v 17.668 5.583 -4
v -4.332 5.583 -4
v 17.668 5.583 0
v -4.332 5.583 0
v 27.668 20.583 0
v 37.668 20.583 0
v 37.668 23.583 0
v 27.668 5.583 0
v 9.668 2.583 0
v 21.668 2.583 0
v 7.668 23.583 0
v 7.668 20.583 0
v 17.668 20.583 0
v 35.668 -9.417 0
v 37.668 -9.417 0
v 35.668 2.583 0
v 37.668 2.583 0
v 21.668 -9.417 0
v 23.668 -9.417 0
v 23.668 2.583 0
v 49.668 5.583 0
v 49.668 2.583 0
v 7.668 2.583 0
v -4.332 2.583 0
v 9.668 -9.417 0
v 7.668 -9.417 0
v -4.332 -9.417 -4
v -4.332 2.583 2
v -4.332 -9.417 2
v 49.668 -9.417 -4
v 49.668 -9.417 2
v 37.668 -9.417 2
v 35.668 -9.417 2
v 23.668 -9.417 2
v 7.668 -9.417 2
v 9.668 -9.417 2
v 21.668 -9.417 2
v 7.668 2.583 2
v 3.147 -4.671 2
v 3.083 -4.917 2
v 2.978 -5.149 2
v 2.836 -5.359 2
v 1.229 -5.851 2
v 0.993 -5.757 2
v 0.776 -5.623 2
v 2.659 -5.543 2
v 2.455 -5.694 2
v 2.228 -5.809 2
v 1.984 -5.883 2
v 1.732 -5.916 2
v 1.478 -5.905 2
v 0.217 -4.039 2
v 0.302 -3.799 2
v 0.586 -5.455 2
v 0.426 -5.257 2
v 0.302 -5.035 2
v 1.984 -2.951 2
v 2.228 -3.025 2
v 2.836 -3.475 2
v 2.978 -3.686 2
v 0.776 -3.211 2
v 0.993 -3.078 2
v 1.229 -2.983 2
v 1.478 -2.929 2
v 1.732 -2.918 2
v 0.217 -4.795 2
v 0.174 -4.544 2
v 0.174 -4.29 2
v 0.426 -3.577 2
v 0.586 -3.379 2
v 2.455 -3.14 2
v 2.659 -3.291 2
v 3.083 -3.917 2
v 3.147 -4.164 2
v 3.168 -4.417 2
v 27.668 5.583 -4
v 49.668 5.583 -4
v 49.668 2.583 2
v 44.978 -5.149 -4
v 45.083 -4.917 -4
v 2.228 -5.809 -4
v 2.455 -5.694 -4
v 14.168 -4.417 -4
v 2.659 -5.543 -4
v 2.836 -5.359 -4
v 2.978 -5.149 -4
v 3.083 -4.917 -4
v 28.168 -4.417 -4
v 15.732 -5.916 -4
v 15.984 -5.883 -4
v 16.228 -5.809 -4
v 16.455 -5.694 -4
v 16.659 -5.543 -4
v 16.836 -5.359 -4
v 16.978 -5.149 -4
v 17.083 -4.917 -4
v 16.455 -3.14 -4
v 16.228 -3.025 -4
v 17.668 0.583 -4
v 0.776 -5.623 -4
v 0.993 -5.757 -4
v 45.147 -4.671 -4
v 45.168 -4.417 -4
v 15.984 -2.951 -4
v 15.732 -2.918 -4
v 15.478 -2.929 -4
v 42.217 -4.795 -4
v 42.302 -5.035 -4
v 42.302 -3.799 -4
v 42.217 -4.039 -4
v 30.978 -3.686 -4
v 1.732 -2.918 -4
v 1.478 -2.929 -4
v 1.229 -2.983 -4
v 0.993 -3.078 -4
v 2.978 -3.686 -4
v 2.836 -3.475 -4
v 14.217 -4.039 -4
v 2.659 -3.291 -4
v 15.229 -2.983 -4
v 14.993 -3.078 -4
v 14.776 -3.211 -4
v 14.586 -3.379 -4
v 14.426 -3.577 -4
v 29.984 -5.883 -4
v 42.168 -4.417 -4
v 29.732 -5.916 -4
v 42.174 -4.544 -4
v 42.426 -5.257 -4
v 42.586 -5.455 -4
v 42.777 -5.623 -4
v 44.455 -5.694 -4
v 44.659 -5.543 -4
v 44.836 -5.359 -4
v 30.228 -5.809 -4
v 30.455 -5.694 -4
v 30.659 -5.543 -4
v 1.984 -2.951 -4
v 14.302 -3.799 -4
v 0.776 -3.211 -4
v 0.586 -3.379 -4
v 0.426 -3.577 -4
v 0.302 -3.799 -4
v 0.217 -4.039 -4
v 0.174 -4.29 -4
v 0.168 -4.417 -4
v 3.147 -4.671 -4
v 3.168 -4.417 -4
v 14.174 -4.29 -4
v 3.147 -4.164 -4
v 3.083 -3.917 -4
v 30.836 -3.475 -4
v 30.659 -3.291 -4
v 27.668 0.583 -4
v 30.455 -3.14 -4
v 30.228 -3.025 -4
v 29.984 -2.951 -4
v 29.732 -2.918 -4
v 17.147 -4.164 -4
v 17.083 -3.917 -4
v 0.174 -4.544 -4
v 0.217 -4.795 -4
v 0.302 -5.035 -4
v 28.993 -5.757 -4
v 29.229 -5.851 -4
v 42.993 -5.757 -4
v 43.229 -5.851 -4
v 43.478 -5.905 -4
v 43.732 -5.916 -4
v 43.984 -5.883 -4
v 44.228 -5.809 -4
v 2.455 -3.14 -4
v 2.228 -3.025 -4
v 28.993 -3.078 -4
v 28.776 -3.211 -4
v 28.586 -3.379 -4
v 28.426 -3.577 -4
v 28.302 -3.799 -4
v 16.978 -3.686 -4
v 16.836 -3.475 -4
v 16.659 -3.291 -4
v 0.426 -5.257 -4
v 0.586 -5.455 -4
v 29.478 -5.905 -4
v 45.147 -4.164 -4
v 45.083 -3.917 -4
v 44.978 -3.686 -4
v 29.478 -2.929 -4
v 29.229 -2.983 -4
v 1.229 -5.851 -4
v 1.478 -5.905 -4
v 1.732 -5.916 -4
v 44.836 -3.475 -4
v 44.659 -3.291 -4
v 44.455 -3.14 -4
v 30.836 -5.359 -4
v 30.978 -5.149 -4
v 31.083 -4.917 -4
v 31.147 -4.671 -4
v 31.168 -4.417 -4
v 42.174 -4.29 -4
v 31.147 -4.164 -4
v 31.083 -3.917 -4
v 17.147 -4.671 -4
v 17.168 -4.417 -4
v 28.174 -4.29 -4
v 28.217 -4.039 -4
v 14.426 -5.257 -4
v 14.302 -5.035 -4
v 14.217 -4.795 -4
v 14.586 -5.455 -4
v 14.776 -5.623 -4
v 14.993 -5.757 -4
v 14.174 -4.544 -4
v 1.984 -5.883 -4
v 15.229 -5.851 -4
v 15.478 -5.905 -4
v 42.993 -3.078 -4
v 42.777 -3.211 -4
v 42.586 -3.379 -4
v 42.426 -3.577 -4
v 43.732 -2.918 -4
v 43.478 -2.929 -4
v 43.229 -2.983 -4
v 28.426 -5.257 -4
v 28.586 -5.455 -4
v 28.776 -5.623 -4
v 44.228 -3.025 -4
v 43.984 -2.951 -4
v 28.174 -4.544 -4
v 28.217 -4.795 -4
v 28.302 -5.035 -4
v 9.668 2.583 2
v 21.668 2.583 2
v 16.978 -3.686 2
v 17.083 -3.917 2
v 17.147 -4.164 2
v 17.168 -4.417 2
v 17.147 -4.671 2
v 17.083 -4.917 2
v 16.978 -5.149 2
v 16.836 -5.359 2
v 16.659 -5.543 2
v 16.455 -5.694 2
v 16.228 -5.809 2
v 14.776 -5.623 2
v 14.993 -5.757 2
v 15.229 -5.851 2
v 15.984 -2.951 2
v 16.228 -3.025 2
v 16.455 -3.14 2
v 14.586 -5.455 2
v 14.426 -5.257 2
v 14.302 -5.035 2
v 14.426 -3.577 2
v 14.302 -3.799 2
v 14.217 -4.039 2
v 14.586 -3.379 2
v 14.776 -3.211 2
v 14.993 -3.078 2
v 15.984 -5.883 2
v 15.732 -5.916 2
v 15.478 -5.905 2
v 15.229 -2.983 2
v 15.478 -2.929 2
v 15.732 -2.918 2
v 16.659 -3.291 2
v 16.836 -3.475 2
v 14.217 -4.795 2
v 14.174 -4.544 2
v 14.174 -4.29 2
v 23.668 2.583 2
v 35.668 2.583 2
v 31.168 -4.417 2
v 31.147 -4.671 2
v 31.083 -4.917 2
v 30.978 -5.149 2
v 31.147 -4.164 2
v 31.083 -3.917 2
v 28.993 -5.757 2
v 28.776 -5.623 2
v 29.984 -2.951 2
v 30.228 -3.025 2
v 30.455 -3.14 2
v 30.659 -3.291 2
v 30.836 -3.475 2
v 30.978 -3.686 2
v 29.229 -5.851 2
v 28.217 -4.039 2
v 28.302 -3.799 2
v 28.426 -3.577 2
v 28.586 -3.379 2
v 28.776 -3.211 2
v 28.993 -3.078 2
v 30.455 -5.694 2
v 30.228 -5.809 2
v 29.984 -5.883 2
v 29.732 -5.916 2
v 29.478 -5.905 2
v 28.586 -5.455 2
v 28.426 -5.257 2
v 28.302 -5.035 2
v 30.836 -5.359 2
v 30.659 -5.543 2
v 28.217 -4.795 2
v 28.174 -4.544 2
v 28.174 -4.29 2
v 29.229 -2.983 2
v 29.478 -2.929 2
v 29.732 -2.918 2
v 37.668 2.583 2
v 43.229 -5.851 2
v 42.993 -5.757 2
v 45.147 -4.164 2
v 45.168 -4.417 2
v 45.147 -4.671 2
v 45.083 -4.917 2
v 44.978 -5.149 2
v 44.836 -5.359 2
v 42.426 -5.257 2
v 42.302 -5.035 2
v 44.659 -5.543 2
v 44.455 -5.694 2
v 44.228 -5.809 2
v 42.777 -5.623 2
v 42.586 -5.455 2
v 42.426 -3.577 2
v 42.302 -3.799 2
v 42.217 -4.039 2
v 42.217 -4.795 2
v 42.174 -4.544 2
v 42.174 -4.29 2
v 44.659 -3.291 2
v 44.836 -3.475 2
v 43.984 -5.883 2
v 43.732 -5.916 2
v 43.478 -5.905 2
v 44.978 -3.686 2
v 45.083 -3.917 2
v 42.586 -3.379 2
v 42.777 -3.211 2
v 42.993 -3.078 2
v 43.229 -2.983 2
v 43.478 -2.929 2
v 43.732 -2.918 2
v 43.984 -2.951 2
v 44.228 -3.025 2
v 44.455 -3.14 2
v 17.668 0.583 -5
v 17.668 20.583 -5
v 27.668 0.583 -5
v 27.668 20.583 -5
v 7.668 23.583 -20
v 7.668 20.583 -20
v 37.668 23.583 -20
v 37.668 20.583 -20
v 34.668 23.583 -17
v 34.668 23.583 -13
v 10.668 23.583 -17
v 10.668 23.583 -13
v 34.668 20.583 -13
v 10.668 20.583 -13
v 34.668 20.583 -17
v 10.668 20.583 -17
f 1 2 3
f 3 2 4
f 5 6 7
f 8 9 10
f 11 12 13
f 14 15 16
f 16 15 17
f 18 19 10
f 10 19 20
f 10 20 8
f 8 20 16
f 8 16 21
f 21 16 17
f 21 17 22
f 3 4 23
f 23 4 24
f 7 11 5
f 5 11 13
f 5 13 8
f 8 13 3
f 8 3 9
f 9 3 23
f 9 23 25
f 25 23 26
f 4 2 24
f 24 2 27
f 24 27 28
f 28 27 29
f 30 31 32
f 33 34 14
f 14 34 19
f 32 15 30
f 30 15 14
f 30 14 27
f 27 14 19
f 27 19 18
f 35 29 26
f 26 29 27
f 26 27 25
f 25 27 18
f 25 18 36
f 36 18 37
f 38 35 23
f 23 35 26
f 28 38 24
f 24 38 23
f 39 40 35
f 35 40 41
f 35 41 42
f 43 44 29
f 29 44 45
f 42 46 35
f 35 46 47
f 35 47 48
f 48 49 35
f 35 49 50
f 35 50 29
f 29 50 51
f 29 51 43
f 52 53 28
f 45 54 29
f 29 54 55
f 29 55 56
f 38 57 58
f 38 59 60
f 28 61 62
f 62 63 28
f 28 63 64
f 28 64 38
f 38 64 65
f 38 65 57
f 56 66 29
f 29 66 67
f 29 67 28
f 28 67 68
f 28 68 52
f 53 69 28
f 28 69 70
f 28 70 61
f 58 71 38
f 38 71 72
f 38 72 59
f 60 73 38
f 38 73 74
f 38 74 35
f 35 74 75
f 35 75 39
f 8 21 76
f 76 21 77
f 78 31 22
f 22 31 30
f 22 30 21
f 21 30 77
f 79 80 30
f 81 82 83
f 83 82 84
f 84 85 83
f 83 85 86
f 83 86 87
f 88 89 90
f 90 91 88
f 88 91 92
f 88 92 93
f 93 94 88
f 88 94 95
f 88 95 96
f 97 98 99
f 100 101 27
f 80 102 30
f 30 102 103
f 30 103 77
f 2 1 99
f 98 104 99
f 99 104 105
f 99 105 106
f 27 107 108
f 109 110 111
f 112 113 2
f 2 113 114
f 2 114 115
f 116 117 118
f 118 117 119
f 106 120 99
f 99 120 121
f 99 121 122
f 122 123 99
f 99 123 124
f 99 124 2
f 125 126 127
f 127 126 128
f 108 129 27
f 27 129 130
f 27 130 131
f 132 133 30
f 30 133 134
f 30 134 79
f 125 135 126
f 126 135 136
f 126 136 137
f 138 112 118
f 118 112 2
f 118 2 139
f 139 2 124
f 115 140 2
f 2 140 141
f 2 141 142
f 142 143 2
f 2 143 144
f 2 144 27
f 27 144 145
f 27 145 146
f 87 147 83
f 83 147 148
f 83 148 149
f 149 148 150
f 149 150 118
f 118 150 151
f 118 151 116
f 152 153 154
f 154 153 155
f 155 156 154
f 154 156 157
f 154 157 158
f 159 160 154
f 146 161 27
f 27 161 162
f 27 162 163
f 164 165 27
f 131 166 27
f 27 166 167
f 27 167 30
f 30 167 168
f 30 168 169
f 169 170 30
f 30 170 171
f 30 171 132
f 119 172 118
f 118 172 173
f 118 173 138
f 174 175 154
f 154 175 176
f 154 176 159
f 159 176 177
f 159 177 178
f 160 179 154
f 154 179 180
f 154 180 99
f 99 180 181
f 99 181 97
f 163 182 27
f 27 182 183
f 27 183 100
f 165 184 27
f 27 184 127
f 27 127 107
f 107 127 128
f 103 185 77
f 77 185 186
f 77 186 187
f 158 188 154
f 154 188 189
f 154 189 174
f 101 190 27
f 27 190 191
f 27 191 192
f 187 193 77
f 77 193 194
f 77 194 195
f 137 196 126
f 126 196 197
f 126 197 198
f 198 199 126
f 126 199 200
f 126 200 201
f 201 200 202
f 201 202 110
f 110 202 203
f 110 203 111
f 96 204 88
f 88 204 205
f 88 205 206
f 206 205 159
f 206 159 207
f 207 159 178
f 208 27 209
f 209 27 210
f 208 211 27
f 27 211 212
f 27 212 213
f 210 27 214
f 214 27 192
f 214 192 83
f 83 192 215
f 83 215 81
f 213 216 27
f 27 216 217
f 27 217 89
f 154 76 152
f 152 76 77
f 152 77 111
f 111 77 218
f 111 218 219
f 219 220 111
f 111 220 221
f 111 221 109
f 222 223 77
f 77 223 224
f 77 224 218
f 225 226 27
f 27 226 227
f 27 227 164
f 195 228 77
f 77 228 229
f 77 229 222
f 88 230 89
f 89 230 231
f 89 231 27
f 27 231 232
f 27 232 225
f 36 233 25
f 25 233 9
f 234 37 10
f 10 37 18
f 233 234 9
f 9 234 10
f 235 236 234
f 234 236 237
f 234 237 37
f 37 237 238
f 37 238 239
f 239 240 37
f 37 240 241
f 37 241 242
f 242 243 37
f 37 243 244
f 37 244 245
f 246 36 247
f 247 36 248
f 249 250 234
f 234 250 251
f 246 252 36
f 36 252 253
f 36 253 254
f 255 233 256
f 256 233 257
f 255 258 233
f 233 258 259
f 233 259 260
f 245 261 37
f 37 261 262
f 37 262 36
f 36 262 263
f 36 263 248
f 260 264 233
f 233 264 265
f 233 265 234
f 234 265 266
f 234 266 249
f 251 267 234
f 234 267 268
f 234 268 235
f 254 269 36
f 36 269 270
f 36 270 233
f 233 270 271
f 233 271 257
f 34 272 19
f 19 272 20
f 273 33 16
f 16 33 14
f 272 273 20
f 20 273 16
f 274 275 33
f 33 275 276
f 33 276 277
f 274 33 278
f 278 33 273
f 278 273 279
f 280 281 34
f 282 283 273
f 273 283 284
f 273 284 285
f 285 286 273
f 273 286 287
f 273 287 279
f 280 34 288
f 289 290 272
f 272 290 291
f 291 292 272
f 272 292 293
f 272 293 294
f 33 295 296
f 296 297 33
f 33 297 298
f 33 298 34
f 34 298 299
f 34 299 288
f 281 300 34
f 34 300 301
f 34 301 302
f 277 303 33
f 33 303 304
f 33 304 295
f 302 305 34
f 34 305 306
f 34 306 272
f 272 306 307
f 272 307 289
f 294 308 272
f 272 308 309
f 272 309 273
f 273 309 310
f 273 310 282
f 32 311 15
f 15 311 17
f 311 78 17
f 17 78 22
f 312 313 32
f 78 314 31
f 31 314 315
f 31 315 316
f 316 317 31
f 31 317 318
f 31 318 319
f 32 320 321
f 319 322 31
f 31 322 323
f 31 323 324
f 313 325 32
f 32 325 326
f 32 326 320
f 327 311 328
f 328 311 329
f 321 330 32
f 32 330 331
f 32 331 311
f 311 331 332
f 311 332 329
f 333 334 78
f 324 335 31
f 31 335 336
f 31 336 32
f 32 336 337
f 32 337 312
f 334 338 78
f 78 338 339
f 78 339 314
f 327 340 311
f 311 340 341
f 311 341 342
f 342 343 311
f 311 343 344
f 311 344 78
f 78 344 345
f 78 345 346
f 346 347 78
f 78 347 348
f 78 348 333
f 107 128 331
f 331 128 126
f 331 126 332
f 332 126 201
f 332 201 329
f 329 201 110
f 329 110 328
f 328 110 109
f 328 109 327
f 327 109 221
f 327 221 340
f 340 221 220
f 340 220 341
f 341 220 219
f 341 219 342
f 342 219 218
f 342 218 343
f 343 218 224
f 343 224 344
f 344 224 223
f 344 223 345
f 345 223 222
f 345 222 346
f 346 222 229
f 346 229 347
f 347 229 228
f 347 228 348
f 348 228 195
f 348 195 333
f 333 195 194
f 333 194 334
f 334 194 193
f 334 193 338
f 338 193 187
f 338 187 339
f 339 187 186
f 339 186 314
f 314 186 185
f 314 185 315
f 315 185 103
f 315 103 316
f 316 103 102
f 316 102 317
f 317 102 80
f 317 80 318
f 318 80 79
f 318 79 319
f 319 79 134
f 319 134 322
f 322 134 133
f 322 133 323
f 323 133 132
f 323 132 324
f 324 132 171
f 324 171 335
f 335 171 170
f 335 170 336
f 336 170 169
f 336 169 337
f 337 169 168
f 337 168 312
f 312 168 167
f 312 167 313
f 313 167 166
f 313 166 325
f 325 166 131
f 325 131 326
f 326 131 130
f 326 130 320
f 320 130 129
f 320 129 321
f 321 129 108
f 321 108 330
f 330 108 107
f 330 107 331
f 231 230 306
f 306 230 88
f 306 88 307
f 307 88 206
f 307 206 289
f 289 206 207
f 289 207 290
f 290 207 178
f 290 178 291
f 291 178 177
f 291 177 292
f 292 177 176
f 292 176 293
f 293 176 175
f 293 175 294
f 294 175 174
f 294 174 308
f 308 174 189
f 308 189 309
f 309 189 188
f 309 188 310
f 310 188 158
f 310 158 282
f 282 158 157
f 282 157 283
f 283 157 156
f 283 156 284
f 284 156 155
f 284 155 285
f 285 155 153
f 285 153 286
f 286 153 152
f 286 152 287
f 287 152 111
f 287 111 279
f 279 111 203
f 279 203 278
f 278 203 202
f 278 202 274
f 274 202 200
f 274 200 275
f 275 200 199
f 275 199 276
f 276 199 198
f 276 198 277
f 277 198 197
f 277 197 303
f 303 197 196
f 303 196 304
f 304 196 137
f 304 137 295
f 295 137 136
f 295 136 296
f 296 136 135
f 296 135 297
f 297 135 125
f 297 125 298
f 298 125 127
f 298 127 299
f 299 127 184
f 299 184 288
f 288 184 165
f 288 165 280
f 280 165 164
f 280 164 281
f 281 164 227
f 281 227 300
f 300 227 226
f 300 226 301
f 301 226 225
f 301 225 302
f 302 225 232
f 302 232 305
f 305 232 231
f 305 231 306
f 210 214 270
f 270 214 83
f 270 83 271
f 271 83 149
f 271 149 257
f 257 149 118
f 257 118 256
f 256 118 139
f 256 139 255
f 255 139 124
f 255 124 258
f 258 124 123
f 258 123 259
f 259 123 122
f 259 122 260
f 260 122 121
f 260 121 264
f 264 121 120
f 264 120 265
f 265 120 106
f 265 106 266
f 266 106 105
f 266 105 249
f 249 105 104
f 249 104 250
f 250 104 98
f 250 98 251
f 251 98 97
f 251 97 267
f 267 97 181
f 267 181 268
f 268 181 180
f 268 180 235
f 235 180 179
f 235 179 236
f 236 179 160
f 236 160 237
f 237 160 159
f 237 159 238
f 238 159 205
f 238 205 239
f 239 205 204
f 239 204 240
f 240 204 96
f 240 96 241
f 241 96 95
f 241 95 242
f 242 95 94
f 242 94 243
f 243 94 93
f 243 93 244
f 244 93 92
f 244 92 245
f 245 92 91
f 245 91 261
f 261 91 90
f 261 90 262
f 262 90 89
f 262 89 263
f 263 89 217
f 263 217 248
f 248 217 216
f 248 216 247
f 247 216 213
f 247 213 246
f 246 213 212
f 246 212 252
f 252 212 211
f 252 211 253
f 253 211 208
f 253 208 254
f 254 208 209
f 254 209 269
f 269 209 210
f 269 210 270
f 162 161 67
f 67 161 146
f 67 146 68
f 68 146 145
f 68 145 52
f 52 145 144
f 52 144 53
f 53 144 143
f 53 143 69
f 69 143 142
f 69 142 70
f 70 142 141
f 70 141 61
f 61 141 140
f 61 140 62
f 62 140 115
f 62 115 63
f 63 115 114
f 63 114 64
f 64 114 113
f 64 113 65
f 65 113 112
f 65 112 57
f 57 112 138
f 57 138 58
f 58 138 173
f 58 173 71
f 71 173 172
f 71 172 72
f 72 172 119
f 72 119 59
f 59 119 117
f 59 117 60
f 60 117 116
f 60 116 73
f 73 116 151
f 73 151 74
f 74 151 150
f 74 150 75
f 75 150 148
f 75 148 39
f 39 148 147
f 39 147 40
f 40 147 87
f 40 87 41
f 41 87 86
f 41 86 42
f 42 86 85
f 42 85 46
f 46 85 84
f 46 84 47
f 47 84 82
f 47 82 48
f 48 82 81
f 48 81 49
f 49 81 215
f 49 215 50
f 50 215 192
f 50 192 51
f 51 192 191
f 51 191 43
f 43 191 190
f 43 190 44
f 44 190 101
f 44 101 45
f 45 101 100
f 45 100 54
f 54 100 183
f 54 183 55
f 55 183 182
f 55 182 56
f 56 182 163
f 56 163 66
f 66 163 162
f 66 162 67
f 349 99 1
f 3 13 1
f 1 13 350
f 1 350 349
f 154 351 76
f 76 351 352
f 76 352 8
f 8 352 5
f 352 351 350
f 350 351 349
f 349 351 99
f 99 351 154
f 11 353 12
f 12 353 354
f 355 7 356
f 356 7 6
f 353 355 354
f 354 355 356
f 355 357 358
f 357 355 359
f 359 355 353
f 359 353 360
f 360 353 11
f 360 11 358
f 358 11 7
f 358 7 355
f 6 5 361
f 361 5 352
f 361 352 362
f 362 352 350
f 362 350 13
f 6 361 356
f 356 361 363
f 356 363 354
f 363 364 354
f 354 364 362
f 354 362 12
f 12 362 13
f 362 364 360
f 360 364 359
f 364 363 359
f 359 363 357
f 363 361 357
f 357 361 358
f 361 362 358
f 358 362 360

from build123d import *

# Parameters (mm, degrees)
SKETCH1_W                = 12
SKETCH1_H                = 12
BOSS_EXTRUDE1_DEPTH      = 2
SKETCH2_W                = 54
SKETCH2_H                = 15
BOSS_EXTRUDE2_DEPTH      = 4
SKETCH3_W                = 12
SKETCH3_H                = 12
BOSS_EXTRUDE3_DEPTH      = 2
SKETCH4_R                = 1.5
CUT_EXTRUDE1_DEPTH       = 9
SKETCH5_W                = 10
SKETCH5_H                = 5
BOSS_EXTRUDE4_DEPTH      = 15
BOSS_EXTRUDE4_DEPTH_BACK = 5
SKETCH6_W                = 30
SKETCH6_H                = 20
BOSS_EXTRUDE5_DEPTH      = 3
SKETCH7_W                = 24
SKETCH7_H                = 4
CUT_EXTRUDE2_DEPTH       = 3


with BuildPart() as part:
    # Sketch1 → Boss-Extrude1 (new body)
    with BuildSketch(Plane.XY):
        with Locations((1.668449198, -3.417112299)):
            Rectangle(SKETCH1_W, SKETCH1_H)
    extrude(amount=BOSS_EXTRUDE1_DEPTH)

    # Sketch2 → Boss-Extrude2 (add)
    with BuildSketch(Plane(origin=(0, 0, 0), x_dir=(-1, 0, 0), z_dir=(0, 0, -1))):
        with Locations((-22.668449198, -1.917112299)):
            Rectangle(SKETCH2_W, SKETCH2_H)
    extrude(amount=BOSS_EXTRUDE2_DEPTH)

    # Sketch3 → Boss-Extrude3 (add)
    with BuildSketch(Plane.XY):
        with Locations((15.668449198, -3.417112299)):
            Rectangle(SKETCH3_W, SKETCH3_H)
        with Locations((29.668449198, -3.417112299)):
            Rectangle(SKETCH3_W, SKETCH3_H)
        with Locations((43.668449198, -3.417112299)):
            Rectangle(SKETCH3_W, SKETCH3_H)
    extrude(amount=BOSS_EXTRUDE3_DEPTH)

    # Sketch4 → Cut-Extrude1 (cut)
    with BuildSketch(Plane.XY.offset(2)):
        with Locations((1.668449198, -4.417112299)):
            Circle(SKETCH4_R)
        with Locations((15.668449198, -4.417112299)):
            Circle(SKETCH4_R)
        with Locations((29.668449198, -4.417112299)):
            Circle(SKETCH4_R)
        with Locations((43.668449198, -4.417112299)):
            Circle(SKETCH4_R)
    extrude(amount=-CUT_EXTRUDE1_DEPTH, mode=Mode.SUBTRACT)

    # Sketch5 → Boss-Extrude4 (add, two sides)
    with BuildSketch(Plane(origin=(0, 5.582887701, 0), x_dir=(1, 0, 0), z_dir=(0, 1, 0))) as boss_extrude4_sk:
        with Locations((22.668449198, 2.5)):
            Rectangle(SKETCH5_W, SKETCH5_H)
    extrude(amount=BOSS_EXTRUDE4_DEPTH)
    extrude(boss_extrude4_sk.sketch, amount=-BOSS_EXTRUDE4_DEPTH_BACK)

    # Sketch6 → Boss-Extrude5 (add)
    with BuildSketch(Plane(origin=(0, 20.582887701, 0), x_dir=(1, 0, 0), z_dir=(0, 1, 0))):
        with Locations((22.668449198, 10)):
            Rectangle(SKETCH6_W, SKETCH6_H)
    extrude(amount=BOSS_EXTRUDE5_DEPTH)

    # Sketch7 → Cut-Extrude2 (cut)
    with BuildSketch(Plane(origin=(0, 23.582887701, 0), x_dir=(1, 0, 0), z_dir=(0, 1, 0))):
        with Locations((22.668449198, 15)):
            Rectangle(SKETCH7_W, SKETCH7_H)
    extrude(amount=-CUT_EXTRUDE2_DEPTH, mode=Mode.SUBTRACT)


solid = part.part
